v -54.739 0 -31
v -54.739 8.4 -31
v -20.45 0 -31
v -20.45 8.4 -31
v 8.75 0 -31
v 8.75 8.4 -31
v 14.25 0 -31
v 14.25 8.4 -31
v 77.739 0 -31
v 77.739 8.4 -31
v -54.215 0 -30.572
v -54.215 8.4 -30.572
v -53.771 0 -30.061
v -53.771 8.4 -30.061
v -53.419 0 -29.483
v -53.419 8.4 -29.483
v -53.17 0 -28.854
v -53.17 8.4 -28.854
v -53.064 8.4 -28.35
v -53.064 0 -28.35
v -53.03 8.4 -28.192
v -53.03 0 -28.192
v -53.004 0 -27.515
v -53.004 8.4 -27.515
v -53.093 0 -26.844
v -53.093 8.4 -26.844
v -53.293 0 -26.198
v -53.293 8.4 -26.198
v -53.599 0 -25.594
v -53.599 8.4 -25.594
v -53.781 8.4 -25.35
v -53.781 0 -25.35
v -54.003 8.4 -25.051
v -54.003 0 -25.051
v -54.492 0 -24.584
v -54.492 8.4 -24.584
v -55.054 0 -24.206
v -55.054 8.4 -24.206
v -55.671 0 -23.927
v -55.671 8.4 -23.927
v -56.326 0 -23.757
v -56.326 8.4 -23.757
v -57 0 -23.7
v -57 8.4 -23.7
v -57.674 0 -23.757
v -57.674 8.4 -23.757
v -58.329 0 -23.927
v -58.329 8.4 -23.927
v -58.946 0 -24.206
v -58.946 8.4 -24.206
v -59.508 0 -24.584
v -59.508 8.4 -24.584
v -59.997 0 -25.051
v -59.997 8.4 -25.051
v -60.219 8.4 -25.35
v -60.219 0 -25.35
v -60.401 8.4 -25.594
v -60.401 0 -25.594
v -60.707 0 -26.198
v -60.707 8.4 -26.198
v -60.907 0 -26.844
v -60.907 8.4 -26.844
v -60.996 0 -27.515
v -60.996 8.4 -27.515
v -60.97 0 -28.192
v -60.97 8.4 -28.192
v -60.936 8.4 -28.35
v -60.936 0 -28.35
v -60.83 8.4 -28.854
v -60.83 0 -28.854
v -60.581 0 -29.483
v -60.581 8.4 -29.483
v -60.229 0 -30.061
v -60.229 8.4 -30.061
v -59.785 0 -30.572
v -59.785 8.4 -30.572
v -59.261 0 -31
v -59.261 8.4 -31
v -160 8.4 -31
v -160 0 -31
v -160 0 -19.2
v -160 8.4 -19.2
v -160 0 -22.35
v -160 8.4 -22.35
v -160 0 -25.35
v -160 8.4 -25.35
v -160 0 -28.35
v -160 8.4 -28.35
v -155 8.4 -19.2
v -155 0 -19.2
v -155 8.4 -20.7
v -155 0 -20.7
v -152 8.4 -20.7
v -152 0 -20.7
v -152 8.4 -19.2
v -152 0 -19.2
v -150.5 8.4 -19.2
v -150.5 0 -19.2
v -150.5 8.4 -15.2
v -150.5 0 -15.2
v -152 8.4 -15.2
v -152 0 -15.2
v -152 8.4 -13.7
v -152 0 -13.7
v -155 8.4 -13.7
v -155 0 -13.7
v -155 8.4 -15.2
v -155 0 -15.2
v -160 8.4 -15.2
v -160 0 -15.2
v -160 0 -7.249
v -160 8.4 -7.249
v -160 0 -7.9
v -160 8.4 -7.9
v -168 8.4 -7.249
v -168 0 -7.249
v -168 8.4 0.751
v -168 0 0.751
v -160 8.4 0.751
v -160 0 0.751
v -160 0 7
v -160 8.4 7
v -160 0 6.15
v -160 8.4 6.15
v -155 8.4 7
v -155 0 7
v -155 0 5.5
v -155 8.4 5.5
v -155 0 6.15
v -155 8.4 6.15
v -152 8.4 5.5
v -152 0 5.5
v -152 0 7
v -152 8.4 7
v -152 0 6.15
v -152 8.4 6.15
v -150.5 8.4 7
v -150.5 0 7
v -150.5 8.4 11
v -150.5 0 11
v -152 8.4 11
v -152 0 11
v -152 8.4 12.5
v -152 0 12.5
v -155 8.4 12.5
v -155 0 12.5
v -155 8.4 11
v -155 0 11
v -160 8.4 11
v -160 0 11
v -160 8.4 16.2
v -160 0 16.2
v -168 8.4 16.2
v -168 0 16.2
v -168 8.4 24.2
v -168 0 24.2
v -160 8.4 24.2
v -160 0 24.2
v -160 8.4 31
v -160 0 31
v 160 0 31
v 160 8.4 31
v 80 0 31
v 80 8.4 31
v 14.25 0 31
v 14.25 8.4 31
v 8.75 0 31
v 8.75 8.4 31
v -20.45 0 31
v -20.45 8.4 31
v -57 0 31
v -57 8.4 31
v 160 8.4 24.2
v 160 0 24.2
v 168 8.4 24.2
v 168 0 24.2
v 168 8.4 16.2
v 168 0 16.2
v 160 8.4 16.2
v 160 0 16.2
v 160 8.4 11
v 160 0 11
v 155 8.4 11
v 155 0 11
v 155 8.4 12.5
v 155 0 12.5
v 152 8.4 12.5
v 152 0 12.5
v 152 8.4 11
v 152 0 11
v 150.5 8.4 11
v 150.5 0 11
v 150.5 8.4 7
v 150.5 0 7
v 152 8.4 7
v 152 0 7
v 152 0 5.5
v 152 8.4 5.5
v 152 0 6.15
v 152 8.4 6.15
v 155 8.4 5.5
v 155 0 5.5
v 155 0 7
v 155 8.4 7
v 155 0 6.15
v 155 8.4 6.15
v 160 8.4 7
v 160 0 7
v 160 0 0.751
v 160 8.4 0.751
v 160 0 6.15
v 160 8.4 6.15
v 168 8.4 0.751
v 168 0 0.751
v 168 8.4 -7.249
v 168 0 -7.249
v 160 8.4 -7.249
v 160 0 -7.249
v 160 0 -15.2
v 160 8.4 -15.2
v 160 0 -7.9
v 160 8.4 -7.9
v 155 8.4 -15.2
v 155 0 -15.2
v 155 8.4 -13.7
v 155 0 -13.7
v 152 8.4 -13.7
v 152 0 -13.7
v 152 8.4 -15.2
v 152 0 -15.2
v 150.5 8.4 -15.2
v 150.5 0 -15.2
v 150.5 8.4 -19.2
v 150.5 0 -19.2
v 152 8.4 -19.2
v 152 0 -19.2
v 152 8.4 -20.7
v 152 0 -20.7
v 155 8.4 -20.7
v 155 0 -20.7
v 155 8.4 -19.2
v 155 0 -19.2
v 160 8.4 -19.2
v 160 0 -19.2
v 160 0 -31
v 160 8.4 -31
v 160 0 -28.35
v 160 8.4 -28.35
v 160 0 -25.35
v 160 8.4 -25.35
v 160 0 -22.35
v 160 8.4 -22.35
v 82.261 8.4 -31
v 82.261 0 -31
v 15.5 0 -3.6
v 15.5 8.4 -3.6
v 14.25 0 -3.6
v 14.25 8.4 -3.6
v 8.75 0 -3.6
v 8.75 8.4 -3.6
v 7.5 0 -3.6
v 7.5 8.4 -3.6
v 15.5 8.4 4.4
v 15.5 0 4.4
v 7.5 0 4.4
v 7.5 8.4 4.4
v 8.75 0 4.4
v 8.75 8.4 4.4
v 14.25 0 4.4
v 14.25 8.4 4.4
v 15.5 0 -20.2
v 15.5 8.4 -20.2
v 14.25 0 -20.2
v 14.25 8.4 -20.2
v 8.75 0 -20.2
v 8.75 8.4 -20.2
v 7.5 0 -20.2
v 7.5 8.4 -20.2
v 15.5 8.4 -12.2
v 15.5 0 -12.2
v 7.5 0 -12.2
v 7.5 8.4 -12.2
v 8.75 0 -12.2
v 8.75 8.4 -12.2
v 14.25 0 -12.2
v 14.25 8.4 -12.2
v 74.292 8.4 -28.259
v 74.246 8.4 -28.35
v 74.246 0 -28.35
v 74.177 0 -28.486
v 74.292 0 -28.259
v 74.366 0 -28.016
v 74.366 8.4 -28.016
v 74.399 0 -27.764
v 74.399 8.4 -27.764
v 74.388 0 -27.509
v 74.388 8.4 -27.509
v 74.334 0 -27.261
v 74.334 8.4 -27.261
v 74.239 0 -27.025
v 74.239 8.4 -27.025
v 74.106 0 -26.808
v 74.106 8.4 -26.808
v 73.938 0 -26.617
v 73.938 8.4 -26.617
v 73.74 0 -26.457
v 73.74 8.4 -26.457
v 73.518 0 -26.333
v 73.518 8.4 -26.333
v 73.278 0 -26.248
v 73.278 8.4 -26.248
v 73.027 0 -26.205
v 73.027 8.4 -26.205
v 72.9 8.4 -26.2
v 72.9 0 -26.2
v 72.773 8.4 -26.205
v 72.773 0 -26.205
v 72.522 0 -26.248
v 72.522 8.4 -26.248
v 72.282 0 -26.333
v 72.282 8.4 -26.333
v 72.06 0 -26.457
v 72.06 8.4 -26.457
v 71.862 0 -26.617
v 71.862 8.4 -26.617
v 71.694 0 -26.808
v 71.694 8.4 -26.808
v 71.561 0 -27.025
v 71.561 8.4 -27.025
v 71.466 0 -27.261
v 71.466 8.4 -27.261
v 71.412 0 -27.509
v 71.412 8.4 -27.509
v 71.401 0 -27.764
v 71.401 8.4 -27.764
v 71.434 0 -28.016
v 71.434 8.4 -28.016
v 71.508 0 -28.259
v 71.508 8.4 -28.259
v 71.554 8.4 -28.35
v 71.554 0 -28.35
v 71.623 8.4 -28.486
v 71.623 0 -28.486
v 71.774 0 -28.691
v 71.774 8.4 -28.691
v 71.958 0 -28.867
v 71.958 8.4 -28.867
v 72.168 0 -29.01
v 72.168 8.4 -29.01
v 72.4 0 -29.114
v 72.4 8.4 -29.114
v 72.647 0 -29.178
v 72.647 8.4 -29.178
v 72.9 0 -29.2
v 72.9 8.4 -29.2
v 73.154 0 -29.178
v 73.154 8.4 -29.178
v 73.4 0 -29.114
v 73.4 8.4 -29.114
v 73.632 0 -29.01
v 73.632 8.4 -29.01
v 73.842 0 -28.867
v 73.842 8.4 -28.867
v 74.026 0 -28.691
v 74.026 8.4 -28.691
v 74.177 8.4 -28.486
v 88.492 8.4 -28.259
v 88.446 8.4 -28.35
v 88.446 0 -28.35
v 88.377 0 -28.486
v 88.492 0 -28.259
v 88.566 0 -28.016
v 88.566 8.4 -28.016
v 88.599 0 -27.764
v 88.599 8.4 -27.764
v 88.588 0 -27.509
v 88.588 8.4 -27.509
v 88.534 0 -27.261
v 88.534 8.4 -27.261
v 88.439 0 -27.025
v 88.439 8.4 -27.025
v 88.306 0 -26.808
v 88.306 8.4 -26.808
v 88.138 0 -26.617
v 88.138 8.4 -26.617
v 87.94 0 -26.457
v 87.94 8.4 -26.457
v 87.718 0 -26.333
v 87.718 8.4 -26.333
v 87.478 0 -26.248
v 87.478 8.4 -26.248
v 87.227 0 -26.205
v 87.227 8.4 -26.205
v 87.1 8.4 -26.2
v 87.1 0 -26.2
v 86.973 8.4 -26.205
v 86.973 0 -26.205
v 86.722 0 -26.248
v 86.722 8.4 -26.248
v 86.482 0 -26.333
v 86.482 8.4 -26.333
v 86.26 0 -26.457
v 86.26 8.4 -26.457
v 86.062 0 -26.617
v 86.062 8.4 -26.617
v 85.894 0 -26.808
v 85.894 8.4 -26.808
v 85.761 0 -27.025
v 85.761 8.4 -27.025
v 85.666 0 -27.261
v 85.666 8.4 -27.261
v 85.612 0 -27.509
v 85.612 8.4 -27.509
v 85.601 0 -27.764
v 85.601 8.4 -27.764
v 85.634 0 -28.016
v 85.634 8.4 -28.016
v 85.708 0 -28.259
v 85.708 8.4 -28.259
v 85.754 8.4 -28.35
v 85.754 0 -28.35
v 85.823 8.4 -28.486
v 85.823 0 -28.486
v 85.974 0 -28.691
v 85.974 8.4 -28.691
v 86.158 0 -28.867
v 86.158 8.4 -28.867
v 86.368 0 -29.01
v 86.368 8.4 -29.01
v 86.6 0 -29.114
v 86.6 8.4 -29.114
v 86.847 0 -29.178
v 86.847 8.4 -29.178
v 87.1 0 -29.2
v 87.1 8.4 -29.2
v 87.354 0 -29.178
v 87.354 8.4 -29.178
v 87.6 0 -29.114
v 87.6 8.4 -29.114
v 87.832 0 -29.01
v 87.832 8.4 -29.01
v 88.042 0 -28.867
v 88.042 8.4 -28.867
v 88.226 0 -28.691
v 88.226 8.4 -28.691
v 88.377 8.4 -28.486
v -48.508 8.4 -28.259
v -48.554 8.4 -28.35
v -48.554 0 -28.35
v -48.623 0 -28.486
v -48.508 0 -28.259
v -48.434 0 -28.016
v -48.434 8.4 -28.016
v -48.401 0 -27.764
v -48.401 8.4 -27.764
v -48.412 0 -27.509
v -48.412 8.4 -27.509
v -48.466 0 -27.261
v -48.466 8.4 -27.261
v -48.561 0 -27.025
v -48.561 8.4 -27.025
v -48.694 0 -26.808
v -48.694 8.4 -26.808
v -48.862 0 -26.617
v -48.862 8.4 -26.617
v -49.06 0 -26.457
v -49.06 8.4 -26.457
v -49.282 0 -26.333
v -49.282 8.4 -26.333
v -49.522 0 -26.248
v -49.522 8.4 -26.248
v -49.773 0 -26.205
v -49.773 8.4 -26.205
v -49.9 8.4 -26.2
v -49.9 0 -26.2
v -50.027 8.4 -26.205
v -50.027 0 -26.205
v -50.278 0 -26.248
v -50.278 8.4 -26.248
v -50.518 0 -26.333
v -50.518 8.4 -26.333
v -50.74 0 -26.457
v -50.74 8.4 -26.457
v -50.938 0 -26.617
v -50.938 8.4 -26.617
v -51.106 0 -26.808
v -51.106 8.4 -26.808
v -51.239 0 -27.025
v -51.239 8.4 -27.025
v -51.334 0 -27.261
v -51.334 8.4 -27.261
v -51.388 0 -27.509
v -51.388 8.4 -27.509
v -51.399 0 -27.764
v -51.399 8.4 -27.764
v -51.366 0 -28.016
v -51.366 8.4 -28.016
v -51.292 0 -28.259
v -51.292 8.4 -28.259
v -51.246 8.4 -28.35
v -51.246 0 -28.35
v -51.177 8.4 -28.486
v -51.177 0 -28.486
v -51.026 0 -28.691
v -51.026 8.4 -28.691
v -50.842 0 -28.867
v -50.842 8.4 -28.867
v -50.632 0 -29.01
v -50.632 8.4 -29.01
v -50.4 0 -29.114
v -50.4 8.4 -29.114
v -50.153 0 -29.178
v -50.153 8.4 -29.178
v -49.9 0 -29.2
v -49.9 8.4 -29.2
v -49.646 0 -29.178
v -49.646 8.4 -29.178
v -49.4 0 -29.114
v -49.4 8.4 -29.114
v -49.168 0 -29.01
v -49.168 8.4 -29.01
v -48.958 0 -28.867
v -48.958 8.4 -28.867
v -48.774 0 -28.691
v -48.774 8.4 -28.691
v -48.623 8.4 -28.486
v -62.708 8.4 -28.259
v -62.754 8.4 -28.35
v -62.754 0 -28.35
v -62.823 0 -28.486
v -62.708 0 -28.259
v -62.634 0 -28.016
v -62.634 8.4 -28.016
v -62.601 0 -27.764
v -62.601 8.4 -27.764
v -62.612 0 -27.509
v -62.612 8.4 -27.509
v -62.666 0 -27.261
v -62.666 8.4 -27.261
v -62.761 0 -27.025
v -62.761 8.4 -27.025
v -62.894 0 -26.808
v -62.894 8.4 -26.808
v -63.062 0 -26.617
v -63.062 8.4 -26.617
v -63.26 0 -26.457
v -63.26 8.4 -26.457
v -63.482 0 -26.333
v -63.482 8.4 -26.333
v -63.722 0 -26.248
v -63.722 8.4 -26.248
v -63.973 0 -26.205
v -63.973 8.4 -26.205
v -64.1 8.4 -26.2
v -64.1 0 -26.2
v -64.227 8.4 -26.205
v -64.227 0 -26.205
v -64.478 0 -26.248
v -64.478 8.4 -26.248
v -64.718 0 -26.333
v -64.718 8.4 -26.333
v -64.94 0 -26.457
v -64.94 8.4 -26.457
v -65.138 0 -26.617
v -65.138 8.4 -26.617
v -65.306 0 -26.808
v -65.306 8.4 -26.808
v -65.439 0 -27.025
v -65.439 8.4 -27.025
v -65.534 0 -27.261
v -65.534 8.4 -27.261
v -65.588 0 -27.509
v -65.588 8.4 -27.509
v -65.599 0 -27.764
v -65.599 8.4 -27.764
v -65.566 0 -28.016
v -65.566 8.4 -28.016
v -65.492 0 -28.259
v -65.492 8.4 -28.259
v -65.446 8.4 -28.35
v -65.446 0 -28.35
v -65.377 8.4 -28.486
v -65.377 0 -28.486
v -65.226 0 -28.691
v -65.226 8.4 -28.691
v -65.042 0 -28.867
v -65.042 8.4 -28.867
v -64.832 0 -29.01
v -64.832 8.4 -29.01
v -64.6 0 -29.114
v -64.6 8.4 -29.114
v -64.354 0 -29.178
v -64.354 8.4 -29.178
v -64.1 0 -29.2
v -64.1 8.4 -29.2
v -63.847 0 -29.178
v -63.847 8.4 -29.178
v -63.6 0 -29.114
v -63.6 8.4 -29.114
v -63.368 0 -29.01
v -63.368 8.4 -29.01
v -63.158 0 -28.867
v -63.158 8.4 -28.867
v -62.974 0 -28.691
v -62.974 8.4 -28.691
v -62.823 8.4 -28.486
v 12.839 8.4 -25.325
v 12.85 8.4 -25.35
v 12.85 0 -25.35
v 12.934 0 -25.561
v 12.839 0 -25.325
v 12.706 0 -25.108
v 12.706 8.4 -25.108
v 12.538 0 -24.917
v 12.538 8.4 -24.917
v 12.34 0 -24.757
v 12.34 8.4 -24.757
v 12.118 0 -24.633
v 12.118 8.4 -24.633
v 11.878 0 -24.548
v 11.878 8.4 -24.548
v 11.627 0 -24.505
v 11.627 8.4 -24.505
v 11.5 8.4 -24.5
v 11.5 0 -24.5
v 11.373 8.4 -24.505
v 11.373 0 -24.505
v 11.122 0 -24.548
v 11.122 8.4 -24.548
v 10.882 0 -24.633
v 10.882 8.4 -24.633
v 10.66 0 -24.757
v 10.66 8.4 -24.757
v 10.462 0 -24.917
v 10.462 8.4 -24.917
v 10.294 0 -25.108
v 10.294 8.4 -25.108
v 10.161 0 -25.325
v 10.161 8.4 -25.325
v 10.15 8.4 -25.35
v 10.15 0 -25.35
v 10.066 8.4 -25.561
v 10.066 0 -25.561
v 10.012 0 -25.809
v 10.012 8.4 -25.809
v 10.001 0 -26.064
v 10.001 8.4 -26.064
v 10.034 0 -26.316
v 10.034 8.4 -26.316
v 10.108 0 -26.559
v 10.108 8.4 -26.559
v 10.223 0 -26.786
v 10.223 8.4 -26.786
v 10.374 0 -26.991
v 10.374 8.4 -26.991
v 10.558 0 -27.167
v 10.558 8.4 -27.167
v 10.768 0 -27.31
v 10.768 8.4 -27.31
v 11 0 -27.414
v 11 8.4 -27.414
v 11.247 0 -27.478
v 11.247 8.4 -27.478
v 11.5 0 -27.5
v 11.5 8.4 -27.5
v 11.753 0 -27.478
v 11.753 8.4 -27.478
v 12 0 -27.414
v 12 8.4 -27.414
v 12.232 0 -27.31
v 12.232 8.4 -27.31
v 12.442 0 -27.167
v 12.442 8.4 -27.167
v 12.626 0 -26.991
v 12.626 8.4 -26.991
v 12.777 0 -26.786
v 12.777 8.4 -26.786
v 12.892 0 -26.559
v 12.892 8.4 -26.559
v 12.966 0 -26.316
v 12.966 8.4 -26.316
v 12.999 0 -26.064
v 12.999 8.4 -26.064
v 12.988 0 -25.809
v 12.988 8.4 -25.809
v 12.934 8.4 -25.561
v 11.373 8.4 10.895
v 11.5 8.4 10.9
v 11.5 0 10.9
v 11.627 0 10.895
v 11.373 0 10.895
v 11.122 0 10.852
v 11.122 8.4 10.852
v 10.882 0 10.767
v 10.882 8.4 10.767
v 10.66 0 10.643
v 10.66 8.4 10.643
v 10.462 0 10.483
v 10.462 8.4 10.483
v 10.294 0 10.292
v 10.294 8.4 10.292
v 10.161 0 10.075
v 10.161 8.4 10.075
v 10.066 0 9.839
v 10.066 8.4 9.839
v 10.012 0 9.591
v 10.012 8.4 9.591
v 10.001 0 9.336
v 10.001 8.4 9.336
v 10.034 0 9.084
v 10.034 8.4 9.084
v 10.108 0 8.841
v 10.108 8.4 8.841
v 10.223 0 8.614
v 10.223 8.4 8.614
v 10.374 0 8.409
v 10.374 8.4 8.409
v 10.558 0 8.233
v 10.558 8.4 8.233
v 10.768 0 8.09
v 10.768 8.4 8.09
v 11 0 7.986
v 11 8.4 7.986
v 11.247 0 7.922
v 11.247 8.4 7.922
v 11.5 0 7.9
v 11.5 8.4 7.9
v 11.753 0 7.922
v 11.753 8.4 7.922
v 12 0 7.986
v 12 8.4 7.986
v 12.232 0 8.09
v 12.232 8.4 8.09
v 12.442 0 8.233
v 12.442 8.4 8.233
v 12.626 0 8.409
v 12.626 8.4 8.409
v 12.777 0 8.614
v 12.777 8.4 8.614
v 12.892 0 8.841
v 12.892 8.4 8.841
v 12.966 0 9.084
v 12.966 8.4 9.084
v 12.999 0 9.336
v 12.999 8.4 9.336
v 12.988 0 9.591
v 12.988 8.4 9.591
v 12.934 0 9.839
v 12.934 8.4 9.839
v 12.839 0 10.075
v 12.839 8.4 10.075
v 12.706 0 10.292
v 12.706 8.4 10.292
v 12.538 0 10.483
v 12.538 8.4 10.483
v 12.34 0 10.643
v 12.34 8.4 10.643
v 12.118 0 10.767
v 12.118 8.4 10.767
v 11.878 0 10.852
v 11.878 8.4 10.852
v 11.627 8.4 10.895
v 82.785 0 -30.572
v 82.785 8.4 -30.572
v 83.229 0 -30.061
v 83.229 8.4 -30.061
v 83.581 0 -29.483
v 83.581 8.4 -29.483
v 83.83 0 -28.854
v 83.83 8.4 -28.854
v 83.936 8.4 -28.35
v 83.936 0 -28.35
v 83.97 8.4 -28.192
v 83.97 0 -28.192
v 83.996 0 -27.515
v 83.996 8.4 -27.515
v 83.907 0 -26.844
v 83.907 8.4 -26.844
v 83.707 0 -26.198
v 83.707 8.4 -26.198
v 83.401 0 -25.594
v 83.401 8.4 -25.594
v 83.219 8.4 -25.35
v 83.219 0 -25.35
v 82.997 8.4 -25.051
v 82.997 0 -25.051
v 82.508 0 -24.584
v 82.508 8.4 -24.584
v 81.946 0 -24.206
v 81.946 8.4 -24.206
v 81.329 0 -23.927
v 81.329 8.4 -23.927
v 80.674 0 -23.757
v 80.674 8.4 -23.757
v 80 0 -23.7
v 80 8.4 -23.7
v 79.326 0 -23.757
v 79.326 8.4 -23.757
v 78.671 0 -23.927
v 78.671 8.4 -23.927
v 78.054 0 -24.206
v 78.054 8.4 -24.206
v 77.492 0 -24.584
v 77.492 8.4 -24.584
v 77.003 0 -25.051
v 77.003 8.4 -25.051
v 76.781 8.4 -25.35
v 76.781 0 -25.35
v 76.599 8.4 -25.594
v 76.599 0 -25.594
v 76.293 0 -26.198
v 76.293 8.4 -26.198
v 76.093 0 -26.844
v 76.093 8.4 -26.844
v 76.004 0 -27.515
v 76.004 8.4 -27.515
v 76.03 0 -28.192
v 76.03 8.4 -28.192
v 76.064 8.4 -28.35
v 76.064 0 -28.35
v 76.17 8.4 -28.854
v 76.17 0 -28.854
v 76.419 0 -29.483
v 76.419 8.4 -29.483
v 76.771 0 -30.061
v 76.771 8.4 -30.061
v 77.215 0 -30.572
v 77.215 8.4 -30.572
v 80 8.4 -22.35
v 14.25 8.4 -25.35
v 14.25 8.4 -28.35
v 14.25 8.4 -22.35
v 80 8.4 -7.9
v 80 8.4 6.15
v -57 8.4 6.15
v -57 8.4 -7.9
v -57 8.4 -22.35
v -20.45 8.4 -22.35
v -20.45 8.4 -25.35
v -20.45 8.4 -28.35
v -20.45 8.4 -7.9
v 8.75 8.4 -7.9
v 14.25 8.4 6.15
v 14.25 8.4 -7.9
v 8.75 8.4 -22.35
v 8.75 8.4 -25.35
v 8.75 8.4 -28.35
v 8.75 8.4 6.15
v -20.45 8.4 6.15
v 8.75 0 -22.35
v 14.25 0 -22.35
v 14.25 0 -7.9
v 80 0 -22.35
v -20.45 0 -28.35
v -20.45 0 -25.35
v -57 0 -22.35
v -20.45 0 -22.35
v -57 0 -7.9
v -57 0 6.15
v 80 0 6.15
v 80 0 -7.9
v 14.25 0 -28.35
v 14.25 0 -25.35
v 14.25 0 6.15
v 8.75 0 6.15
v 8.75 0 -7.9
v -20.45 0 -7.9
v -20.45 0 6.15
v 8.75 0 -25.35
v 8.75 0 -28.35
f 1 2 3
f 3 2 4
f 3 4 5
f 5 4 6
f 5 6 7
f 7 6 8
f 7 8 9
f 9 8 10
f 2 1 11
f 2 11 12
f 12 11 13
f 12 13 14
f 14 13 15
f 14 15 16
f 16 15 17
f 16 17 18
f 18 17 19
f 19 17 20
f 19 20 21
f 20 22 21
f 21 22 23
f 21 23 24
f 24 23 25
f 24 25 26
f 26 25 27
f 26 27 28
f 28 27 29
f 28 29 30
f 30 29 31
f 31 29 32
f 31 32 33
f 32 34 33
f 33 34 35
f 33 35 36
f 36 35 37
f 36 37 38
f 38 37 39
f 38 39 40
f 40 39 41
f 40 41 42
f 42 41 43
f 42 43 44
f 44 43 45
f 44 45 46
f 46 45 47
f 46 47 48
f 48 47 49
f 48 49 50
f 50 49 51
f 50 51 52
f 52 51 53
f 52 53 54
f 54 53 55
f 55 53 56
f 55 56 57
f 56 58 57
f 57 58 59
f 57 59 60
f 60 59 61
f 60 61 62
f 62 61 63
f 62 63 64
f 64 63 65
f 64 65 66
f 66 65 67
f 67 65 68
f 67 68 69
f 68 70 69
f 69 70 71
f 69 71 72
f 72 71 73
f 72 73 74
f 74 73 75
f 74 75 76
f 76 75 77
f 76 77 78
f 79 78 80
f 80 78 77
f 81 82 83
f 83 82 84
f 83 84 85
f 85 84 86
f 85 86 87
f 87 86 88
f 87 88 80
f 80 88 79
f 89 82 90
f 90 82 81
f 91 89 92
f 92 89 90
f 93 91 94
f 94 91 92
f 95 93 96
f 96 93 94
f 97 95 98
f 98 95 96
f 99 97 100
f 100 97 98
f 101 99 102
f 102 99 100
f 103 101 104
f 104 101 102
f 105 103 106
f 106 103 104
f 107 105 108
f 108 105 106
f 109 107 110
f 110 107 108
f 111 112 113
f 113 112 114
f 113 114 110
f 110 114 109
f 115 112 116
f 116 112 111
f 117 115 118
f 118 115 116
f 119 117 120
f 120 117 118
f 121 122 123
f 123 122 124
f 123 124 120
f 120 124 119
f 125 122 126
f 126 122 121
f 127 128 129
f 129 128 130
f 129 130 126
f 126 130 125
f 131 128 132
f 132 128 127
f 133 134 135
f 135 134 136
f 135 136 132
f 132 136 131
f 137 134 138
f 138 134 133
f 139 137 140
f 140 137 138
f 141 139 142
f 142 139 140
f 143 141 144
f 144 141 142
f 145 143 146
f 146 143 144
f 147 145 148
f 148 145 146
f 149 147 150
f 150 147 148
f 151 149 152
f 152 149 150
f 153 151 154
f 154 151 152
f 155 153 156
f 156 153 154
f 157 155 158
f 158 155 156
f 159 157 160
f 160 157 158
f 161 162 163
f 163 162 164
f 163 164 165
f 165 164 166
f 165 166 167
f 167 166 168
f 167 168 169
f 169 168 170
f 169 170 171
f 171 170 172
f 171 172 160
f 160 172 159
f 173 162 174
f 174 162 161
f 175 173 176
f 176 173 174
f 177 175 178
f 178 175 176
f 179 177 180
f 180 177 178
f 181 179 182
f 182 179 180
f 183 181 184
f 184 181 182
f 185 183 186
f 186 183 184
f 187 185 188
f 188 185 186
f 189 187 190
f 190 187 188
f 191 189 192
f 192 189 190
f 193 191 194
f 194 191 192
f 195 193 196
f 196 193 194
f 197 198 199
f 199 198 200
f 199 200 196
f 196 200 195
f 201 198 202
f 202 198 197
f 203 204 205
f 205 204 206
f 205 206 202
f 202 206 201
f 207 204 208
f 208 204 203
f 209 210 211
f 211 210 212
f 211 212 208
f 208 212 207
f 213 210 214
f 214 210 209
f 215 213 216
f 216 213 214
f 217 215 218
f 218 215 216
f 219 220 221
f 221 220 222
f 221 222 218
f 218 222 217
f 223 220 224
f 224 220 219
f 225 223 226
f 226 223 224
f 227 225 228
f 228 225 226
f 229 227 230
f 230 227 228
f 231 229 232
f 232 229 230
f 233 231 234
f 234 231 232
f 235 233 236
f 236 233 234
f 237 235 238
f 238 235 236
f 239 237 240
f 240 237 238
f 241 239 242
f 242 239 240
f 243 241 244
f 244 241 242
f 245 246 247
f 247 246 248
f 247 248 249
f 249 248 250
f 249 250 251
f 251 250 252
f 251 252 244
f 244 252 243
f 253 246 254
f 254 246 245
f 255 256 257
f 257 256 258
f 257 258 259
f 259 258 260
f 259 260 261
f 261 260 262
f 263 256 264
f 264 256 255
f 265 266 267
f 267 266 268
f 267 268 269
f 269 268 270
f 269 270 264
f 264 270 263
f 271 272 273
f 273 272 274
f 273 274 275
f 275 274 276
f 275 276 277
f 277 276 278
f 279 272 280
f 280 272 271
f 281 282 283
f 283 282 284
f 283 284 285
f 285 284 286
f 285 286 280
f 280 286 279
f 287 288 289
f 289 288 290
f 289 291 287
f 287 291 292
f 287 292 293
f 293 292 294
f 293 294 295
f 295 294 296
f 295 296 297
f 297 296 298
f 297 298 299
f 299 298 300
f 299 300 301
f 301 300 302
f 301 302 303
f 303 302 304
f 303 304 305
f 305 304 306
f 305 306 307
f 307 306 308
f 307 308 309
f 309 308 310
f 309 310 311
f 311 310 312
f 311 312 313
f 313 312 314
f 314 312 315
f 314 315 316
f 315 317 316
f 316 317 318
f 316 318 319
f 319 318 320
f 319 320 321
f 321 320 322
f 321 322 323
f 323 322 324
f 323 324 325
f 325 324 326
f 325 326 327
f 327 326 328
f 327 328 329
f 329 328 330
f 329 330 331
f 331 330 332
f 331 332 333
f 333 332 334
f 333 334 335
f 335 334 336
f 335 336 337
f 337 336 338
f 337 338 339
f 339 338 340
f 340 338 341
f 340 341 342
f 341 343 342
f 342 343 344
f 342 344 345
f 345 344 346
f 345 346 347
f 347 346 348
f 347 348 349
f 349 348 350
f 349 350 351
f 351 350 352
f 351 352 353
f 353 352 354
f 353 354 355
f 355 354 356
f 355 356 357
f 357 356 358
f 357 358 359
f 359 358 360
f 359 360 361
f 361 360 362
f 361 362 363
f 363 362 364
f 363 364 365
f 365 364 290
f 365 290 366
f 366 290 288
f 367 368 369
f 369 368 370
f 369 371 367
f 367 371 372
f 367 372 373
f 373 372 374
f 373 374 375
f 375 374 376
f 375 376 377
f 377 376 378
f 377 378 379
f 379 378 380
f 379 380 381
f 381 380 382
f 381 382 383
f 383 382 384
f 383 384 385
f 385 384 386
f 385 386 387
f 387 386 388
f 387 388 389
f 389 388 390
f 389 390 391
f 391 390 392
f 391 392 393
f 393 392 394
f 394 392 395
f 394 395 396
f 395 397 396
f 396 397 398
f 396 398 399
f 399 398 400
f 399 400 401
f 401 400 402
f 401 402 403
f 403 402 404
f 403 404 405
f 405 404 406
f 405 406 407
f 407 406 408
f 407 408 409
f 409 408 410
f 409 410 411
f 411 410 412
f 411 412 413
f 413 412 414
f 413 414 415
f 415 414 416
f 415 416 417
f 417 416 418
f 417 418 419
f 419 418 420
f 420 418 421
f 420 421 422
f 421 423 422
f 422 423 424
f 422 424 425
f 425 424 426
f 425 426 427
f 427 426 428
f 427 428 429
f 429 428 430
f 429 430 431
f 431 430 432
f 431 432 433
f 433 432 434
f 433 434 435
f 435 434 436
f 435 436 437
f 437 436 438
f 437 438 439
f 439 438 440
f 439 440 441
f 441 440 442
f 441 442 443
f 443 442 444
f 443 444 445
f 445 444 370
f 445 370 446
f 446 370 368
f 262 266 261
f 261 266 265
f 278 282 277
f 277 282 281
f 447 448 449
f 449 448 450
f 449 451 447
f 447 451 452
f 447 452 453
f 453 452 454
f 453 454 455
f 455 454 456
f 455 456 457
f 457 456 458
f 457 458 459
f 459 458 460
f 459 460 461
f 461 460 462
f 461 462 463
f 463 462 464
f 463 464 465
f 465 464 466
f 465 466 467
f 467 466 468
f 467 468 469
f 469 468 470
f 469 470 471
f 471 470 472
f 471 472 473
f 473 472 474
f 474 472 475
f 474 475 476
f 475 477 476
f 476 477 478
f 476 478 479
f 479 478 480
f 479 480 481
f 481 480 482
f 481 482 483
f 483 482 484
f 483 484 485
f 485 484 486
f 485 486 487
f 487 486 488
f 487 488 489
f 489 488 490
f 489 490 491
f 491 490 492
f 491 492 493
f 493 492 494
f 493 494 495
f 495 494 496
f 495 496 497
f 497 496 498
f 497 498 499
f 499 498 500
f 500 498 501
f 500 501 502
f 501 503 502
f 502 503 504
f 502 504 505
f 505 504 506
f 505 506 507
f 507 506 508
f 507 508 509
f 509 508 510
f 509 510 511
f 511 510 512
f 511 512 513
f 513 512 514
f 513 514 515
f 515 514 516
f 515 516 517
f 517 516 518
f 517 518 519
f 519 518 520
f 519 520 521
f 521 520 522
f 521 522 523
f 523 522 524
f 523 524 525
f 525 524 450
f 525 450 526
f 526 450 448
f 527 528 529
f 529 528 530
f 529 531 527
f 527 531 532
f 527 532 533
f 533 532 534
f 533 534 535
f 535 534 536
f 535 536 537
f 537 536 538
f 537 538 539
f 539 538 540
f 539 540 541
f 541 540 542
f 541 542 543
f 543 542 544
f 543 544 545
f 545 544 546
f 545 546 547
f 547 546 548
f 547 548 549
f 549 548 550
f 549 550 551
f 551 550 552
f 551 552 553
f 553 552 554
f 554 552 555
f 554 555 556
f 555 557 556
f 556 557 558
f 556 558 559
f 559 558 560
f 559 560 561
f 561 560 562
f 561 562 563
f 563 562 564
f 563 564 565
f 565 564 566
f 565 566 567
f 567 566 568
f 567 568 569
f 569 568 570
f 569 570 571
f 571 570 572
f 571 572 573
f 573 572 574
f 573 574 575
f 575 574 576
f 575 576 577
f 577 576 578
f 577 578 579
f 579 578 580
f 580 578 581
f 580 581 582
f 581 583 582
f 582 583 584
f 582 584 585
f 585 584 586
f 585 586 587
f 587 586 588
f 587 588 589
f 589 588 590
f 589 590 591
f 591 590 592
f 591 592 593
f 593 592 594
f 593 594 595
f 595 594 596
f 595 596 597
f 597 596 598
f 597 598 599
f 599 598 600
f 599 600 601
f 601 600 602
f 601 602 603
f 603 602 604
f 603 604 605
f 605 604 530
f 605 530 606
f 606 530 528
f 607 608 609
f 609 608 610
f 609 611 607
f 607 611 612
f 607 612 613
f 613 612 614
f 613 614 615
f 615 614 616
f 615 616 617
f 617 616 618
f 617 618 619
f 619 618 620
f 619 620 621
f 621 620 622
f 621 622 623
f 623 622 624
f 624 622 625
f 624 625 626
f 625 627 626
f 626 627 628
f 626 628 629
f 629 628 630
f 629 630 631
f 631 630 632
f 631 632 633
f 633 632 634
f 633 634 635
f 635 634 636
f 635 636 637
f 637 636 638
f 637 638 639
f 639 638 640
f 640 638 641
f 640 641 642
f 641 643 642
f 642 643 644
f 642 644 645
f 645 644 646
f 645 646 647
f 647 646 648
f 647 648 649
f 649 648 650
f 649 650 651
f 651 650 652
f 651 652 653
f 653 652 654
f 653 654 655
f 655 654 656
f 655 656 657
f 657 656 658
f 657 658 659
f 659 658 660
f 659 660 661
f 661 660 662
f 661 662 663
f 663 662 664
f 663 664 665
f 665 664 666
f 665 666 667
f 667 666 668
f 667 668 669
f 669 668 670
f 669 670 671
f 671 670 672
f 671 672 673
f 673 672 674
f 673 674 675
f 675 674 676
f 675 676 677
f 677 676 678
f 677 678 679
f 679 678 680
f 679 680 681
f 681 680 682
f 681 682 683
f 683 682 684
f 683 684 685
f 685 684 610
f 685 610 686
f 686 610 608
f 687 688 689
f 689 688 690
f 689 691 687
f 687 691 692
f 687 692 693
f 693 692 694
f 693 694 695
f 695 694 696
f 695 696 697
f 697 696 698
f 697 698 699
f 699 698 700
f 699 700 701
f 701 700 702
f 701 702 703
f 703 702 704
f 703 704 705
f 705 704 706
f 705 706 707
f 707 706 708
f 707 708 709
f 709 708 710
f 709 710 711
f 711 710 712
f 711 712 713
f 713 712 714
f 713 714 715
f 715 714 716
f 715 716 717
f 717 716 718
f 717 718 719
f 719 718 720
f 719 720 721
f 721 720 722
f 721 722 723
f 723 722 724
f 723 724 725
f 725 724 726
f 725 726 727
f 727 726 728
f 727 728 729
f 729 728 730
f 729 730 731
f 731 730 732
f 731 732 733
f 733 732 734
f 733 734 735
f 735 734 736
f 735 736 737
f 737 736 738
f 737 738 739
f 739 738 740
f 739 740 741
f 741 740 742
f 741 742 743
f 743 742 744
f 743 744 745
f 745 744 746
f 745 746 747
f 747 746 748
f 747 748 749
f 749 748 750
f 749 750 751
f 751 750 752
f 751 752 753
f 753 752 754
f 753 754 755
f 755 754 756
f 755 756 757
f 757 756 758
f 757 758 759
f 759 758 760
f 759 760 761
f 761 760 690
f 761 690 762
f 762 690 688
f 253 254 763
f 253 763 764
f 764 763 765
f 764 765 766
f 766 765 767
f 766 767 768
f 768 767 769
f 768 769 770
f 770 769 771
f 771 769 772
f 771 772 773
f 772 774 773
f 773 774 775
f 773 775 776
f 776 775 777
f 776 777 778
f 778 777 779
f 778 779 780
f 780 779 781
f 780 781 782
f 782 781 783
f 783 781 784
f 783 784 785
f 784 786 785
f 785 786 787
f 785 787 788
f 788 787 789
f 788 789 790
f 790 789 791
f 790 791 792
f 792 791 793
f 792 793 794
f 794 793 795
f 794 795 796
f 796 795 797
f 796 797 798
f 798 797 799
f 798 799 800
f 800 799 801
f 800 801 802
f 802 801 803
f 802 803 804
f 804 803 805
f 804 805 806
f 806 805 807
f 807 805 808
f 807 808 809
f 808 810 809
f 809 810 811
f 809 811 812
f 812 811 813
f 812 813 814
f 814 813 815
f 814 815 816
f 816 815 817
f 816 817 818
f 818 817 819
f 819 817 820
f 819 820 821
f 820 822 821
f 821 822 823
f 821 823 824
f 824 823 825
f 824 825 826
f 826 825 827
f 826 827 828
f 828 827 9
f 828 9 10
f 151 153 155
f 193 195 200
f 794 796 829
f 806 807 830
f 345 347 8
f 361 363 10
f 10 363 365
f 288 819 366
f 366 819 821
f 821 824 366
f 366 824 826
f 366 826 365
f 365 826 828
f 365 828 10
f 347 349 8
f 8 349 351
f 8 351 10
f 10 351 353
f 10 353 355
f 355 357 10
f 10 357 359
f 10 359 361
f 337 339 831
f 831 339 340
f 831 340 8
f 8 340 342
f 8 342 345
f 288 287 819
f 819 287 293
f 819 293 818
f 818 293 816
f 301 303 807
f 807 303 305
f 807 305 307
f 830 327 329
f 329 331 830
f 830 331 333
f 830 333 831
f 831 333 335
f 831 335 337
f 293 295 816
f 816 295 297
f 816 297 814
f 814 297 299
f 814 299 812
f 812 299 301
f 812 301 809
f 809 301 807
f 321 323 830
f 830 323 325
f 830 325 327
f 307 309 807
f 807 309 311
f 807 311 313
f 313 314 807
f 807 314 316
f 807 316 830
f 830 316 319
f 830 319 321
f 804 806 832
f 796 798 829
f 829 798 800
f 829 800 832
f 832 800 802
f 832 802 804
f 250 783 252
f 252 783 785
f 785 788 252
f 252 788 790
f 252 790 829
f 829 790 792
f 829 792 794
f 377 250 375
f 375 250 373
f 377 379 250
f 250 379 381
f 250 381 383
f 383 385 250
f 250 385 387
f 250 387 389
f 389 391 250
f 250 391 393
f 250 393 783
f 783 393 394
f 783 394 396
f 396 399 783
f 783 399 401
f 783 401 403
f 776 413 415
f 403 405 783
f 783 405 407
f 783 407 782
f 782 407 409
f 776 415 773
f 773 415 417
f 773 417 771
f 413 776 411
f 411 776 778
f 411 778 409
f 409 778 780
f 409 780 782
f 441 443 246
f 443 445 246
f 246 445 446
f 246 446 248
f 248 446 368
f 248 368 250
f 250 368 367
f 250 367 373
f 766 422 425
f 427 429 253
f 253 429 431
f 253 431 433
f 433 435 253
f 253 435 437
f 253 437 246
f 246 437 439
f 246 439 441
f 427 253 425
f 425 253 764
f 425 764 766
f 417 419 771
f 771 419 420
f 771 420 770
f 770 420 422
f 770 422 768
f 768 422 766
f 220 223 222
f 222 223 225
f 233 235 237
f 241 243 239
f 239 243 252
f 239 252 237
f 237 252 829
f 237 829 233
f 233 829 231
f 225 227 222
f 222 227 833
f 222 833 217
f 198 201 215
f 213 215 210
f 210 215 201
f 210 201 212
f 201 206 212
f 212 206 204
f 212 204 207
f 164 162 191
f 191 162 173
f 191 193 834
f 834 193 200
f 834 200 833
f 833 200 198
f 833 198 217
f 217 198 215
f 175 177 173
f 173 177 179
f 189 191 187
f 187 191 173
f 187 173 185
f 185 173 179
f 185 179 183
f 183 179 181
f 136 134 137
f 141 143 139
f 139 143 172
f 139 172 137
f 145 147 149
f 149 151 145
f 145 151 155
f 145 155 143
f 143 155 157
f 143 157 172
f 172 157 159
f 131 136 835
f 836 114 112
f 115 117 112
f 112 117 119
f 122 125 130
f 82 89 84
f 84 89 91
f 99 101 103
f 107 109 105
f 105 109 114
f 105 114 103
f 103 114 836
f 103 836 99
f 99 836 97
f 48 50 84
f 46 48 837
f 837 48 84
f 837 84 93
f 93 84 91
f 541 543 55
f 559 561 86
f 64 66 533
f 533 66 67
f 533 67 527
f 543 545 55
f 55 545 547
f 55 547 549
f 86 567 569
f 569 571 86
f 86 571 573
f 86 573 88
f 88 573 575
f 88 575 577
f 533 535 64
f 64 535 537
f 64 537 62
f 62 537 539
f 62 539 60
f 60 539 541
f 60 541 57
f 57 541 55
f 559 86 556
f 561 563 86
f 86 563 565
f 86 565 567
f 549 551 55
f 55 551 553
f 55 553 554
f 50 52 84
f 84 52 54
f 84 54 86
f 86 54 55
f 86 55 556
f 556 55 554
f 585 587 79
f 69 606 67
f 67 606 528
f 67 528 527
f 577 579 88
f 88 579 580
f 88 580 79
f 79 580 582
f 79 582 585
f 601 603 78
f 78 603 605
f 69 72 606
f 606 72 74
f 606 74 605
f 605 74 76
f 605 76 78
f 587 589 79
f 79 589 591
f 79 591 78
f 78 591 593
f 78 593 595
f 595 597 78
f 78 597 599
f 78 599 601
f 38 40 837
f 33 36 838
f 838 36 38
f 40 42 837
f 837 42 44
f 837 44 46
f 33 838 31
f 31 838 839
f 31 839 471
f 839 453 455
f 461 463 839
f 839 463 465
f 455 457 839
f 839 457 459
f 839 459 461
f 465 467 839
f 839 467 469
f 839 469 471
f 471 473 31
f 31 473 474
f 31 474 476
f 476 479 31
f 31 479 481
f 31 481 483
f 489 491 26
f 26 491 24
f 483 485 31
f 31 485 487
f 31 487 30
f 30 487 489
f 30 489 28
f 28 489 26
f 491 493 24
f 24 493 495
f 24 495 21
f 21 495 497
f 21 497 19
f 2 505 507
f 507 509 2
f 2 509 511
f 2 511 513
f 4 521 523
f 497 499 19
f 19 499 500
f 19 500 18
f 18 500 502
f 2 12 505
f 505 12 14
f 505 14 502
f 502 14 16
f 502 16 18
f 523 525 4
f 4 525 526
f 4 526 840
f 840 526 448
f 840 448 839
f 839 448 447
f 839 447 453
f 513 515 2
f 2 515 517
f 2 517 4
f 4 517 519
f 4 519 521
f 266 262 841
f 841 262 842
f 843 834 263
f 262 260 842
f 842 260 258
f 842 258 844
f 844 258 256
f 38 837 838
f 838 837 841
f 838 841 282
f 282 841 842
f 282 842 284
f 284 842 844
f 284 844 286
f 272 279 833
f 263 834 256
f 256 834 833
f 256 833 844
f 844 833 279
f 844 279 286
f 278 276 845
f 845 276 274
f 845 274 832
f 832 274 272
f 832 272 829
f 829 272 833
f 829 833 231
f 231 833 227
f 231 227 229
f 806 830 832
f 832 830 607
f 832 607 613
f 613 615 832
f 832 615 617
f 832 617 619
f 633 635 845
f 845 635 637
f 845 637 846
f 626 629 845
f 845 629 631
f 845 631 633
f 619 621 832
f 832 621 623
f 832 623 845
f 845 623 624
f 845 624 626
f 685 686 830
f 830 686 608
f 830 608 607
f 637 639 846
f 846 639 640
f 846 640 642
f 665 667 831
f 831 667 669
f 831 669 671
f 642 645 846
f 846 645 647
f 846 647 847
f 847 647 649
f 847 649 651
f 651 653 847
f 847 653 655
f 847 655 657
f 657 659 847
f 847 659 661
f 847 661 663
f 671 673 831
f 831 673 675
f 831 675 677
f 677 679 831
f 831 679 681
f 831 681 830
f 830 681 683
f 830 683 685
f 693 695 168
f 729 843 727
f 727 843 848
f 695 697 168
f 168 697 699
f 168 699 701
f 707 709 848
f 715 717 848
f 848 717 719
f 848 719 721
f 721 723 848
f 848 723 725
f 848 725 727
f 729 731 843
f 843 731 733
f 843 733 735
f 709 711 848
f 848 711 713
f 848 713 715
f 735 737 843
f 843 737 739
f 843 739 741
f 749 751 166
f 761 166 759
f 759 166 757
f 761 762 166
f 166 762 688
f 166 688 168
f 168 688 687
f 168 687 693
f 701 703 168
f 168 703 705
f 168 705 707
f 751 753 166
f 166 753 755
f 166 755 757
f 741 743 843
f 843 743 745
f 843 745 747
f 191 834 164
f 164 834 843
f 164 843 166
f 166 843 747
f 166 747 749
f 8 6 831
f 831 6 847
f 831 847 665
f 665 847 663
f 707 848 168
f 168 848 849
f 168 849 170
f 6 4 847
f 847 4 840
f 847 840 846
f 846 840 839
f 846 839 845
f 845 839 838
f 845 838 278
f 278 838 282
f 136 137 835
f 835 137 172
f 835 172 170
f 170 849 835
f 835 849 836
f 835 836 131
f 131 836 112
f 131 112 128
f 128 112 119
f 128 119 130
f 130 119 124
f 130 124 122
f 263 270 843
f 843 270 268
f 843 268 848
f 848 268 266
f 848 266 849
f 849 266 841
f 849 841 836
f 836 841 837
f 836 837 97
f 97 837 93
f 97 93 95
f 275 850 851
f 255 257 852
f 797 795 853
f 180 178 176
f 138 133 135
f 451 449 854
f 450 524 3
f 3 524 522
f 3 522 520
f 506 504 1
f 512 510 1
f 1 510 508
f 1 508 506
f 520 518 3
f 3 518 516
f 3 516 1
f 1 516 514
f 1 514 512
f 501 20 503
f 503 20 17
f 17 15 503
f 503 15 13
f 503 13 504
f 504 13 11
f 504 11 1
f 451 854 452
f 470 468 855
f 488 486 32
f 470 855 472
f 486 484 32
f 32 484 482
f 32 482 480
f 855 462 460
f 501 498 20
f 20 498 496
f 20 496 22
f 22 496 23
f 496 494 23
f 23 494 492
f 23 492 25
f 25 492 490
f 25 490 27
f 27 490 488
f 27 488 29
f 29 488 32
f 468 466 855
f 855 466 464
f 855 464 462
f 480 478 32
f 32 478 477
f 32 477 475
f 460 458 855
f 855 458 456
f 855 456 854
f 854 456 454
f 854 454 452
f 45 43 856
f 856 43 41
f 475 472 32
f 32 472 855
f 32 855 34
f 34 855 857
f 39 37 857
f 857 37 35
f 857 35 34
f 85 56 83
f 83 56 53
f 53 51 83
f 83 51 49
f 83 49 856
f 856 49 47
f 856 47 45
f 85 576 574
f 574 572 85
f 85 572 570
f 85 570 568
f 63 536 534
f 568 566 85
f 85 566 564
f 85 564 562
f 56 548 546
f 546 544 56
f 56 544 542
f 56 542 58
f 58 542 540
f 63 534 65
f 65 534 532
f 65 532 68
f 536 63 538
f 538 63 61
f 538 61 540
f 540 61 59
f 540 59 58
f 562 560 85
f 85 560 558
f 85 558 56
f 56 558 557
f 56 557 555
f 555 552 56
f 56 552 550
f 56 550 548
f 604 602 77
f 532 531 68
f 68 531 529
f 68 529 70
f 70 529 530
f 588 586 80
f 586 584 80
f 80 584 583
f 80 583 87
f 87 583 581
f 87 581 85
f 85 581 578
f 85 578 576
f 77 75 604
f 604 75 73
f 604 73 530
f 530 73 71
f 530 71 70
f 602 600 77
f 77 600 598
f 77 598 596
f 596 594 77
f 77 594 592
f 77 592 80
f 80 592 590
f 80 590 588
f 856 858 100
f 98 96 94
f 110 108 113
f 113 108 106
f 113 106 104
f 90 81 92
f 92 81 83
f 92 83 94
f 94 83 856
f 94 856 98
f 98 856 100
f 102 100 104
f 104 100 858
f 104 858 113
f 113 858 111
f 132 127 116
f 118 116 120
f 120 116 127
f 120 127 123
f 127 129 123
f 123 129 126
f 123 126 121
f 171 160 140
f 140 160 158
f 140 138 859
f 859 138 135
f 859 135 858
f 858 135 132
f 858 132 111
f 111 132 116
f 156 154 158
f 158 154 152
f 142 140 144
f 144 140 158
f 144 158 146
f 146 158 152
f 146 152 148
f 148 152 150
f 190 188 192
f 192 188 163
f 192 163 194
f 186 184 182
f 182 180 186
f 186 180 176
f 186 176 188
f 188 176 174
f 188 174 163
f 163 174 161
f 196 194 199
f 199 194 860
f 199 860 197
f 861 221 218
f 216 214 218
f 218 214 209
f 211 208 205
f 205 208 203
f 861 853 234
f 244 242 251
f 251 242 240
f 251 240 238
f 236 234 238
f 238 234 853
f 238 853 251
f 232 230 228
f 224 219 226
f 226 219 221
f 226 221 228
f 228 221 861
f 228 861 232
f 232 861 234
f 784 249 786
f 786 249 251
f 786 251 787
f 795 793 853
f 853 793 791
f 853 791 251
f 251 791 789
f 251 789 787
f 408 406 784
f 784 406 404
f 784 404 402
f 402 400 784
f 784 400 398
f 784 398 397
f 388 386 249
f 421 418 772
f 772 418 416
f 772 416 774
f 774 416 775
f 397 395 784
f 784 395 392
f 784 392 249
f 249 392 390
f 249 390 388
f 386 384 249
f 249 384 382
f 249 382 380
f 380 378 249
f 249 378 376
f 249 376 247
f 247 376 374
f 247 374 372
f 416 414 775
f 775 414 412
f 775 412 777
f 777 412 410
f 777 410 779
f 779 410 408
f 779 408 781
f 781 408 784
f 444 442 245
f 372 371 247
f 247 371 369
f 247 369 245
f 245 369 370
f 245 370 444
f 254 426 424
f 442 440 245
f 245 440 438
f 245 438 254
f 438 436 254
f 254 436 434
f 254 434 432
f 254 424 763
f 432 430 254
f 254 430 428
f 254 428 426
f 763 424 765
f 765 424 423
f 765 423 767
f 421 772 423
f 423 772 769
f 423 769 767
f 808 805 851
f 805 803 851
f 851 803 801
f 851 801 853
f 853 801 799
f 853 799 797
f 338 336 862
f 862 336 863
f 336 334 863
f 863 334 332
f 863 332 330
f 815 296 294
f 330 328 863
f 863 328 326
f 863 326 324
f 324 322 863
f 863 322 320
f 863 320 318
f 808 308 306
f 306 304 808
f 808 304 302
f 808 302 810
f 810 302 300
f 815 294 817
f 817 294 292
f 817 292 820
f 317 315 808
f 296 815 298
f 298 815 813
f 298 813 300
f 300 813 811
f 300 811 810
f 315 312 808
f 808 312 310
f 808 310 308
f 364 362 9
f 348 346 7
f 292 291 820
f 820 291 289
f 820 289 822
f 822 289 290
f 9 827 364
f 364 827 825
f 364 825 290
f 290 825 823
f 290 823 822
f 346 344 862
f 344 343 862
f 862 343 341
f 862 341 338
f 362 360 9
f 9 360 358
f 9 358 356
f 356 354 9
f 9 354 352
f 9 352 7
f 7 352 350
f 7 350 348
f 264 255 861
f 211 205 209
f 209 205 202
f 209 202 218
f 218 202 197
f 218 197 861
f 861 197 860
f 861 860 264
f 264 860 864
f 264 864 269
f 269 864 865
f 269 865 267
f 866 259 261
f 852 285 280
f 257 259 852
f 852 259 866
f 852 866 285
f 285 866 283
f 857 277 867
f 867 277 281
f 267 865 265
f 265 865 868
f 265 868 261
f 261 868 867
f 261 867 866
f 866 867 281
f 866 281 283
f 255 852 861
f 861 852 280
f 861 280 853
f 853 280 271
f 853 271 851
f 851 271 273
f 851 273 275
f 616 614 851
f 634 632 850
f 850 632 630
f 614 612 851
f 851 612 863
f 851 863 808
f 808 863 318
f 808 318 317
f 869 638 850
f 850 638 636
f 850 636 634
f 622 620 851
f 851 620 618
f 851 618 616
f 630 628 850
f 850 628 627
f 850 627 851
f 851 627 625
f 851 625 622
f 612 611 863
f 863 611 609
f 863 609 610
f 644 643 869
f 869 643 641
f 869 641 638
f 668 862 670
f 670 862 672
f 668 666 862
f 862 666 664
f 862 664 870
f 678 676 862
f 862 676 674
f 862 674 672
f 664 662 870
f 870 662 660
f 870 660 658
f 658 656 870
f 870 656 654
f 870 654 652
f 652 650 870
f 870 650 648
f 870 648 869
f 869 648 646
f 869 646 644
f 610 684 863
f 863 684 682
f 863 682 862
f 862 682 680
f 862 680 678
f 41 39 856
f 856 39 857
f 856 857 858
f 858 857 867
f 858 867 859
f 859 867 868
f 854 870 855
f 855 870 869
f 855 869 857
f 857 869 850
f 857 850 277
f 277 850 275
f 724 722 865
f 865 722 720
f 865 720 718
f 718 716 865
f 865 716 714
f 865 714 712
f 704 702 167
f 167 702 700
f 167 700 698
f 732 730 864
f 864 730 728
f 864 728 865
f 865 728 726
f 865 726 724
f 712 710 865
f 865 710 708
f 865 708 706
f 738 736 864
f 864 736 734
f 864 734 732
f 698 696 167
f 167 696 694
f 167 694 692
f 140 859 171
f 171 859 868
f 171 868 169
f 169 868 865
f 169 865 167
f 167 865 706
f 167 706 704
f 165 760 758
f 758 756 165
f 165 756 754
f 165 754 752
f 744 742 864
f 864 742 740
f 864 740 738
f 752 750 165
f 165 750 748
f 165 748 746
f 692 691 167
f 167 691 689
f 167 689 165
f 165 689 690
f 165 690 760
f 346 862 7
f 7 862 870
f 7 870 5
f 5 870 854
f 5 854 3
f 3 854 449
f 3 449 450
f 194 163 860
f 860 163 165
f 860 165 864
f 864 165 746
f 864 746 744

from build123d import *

# Parameters (mm, degrees)
SKETCH1_R           = 1.5
SKETCH1_W           = 8
SKETCH1_H           = 8
BOSS_EXTRUDE1_DEPTH = 8.4


with BuildPart() as part:
    # Sketch1 → Boss-Extrude1 (new body)
    with BuildSketch(Plane(origin=(0, 0, 0), x_dir=(1, 0, 0), z_dir=(0, 1, 0))):
        with BuildLine():
            Line((-160, 31), (-59.260530911, 31))
            ThreePointArc((-59.260530911, 31), (-57, 23.7), (-54.739469089, 31))
            Line((-54.739469089, 31), (77.739469089, 31))
            ThreePointArc((77.739469089, 31), (80, 23.7), (82.260530911, 31))
            Line((82.260530911, 31), (160, 31))
            Line((160, 31), (160, 19.2))
            Line((160, 19.2), (155, 19.2))
            Line((155, 19.2), (155, 20.7))
            Line((155, 20.7), (152, 20.7))
            Line((152, 20.7), (152, 19.2))
            Line((152, 19.2), (150.5, 19.2))
            Line((150.5, 19.2), (150.5, 15.2))
            Line((150.5, 15.2), (152, 15.2))
            Line((152, 15.2), (152, 13.7))
            Line((152, 13.7), (155, 13.7))
            Line((155, 13.7), (155, 15.2))
            Line((155, 15.2), (160, 15.2))
            Line((160, 15.2), (160, 7.248623706))
            Line((160, 7.248623706), (168, 7.248623706))
            Line((168, 7.248623706), (168, -0.751376294))
            Line((168, -0.751376294), (160, -0.751376294))
            Line((160, -0.751376294), (160, -7))
            Line((160, -7), (155, -7))
            Line((155, -7), (155, -5.5))
            Line((155, -5.5), (152, -5.5))
            Line((152, -5.5), (152, -7))
            Line((152, -7), (150.5, -7))
            Line((150.5, -7), (150.5, -11))
            Line((150.5, -11), (152, -11))
            Line((152, -11), (152, -12.5))
            Line((152, -12.5), (155, -12.5))
            Line((155, -12.5), (155, -11))
            Line((155, -11), (160, -11))
            Line((160, -11), (160, -16.2))
            Line((160, -16.2), (168, -16.2))
            Line((168, -16.2), (168, -24.2))
            Line((168, -24.2), (160, -24.2))
            Line((160, -24.2), (160, -31))
            Line((160, -31), (-160, -31))
            Line((-160, -31), (-160, -24.2))
            Line((-160, -24.2), (-168, -24.2))
            Line((-168, -24.2), (-168, -16.2))
            Line((-168, -16.2), (-160, -16.2))
            Line((-160, -16.2), (-160, -11))
            Line((-160, -11), (-155, -11))
            Line((-155, -11), (-155, -12.5))
            Line((-155, -12.5), (-152, -12.5))
            Line((-152, -12.5), (-152, -11))
            Line((-152, -11), (-150.5, -11))
            Line((-150.5, -11), (-150.5, -7))
            Line((-150.5, -7), (-152, -7))
            Line((-152, -7), (-152, -5.5))
            Line((-152, -5.5), (-155, -5.5))
            Line((-155, -5.5), (-155, -7))
            Line((-155, -7), (-160, -7))
            Line((-160, -7), (-160, -0.751376294))
            Line((-160, -0.751376294), (-168, -0.751376294))
            Line((-168, -0.751376294), (-168, 7.248623706))
            Line((-168, 7.248623706), (-160, 7.248623706))
            Line((-160, 7.248623706), (-160, 15.2))
            Line((-160, 15.2), (-155, 15.2))
            Line((-155, 15.2), (-155, 13.7))
            Line((-155, 13.7), (-152, 13.7))
            Line((-152, 13.7), (-152, 15.2))
            Line((-152, 15.2), (-150.5, 15.2))
            Line((-150.5, 15.2), (-150.5, 19.2))
            Line((-150.5, 19.2), (-152, 19.2))
            Line((-152, 19.2), (-152, 20.7))
            Line((-152, 20.7), (-155, 20.7))
            Line((-155, 20.7), (-155, 19.2))
            Line((-155, 19.2), (-160, 19.2))
            Line((-160, 19.2), (-160, 31))
        make_face()
        with Locations((87.1, 27.7)):
            Circle(SKETCH1_R, mode=Mode.SUBTRACT)
        with Locations((72.9, 27.7)):
            Circle(SKETCH1_R, mode=Mode.SUBTRACT)
        with Locations((-49.9, 27.7)):
            Circle(SKETCH1_R, mode=Mode.SUBTRACT)
        with Locations((-64.1, 27.7)):
            Circle(SKETCH1_R, mode=Mode.SUBTRACT)
        with Locations((11.5, 26)):
            Circle(SKETCH1_R, mode=Mode.SUBTRACT)
        with Locations((11.5, -9.4)):
            Circle(SKETCH1_R, mode=Mode.SUBTRACT)
        with Locations((11.5, -0.4)):
            Rectangle(SKETCH1_W, SKETCH1_H, mode=Mode.SUBTRACT)
        with Locations((11.5, 16.2)):
            Rectangle(SKETCH1_W, SKETCH1_H, mode=Mode.SUBTRACT)
    extrude(amount=BOSS_EXTRUDE1_DEPTH)


solid = part.part
